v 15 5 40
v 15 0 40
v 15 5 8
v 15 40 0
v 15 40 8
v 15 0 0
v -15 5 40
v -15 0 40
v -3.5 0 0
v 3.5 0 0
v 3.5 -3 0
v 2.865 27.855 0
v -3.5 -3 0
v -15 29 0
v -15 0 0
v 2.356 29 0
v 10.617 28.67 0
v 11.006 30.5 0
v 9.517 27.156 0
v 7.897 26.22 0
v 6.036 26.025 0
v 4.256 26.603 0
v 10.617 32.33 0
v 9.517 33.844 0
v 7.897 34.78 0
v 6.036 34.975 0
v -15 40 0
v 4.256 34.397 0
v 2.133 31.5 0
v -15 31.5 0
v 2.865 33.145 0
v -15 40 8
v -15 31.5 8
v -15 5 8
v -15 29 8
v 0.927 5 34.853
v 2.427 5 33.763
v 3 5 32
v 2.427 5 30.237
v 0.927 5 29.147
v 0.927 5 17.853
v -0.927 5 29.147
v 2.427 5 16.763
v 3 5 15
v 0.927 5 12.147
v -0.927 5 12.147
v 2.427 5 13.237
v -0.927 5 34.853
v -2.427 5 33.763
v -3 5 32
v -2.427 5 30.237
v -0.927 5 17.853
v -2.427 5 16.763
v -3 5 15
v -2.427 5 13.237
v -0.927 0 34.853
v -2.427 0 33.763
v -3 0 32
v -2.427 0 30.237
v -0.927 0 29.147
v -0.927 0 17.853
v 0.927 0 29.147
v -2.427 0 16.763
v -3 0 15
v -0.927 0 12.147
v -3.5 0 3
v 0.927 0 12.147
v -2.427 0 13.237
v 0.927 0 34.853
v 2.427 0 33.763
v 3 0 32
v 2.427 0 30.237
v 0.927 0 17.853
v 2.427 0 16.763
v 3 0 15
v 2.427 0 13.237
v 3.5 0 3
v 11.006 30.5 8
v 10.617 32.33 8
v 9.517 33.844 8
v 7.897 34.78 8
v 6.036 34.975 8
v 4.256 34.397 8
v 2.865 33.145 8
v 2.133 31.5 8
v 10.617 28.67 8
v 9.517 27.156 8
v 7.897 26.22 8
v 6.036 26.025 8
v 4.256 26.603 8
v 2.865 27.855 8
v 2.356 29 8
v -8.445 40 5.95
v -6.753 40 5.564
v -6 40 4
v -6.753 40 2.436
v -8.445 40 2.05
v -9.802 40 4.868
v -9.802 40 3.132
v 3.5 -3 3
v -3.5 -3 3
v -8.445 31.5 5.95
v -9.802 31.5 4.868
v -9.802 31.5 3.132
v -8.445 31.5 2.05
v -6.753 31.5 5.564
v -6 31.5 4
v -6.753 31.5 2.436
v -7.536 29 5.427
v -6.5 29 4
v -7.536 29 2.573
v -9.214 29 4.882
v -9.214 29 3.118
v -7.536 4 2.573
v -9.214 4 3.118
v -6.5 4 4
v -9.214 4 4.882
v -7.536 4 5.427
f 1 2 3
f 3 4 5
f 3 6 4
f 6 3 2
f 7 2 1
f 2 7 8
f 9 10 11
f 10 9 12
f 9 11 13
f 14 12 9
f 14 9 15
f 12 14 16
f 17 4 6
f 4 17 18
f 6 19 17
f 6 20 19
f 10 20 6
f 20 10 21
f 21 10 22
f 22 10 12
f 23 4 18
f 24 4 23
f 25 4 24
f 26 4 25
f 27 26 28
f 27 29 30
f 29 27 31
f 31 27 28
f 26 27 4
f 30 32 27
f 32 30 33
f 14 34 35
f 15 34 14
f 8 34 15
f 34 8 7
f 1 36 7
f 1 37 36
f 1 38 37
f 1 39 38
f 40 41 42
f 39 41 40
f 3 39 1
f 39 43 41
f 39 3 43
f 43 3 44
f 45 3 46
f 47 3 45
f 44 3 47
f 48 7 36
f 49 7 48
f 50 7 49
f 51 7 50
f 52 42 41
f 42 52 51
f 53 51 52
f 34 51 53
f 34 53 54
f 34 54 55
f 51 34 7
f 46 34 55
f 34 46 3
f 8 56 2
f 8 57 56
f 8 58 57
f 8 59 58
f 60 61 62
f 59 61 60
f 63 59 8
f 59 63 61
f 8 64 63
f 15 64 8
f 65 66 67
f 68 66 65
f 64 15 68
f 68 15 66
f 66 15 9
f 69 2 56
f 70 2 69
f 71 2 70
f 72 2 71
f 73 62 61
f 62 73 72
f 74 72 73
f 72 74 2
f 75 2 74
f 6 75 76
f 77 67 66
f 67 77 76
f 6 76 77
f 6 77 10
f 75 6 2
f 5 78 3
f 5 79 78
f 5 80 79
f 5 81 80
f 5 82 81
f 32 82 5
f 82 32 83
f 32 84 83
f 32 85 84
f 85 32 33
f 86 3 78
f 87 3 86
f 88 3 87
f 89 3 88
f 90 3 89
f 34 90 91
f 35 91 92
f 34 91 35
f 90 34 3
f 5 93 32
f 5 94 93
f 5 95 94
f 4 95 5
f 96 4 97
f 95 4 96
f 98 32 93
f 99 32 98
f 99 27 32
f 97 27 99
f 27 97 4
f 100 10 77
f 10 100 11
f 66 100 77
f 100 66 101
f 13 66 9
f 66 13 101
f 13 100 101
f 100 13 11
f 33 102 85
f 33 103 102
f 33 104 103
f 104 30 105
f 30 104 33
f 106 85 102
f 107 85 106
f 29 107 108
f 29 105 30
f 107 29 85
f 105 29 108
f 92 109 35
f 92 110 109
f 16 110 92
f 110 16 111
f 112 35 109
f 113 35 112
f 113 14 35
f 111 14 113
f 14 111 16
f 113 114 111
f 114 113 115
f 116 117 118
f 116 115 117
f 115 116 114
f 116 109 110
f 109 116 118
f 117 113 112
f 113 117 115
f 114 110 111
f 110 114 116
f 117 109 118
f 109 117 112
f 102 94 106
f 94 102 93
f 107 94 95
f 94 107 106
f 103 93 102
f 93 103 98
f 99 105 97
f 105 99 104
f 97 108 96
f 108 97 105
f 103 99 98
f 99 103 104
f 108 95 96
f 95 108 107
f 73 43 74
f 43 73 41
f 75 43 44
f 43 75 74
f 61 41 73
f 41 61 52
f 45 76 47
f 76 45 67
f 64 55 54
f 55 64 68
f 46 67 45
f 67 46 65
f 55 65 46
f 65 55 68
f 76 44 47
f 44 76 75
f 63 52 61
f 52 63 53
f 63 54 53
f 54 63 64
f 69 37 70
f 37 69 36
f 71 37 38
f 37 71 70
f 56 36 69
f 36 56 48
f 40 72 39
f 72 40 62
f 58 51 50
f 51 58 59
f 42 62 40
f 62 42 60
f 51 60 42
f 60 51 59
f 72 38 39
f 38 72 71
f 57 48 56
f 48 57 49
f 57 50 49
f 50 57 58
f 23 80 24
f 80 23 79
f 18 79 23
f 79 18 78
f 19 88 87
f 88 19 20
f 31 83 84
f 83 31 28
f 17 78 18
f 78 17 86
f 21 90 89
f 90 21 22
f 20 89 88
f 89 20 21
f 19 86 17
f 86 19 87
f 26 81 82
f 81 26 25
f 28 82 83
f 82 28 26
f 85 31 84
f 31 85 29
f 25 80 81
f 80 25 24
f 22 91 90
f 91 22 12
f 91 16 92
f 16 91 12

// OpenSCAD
include <MCAD/motors.scad>;

difference(){
union(){
translate([-15,0,0])
cube([30,5,40]);

translate([-15,0,0])
cube([30,40,8]);
    
translate([-3.5,-3,0])
cube([7,3,3]);
}

// Clamp slice
translate([-16,29,0])
cube([25,2.5,10]);

// Clamp hole
translate([-8,44,4])
rotate([90,0,0])
cylinder(h=40,r=1.5);

translate([-8,40,4])
rotate([90,0,0])
cylinder(h=10,r=2);

// Bolt holes
translate([0,6,15])
rotate([90,0,0])
cylinder(h=10,r=3);

translate([0,6,32])
rotate([90,0,0])
cylinder(h=10,r=3);

// Smooth rod mount
translate([6.506,30.5,-1])
cylinder(h=10,r=4.5);
}
